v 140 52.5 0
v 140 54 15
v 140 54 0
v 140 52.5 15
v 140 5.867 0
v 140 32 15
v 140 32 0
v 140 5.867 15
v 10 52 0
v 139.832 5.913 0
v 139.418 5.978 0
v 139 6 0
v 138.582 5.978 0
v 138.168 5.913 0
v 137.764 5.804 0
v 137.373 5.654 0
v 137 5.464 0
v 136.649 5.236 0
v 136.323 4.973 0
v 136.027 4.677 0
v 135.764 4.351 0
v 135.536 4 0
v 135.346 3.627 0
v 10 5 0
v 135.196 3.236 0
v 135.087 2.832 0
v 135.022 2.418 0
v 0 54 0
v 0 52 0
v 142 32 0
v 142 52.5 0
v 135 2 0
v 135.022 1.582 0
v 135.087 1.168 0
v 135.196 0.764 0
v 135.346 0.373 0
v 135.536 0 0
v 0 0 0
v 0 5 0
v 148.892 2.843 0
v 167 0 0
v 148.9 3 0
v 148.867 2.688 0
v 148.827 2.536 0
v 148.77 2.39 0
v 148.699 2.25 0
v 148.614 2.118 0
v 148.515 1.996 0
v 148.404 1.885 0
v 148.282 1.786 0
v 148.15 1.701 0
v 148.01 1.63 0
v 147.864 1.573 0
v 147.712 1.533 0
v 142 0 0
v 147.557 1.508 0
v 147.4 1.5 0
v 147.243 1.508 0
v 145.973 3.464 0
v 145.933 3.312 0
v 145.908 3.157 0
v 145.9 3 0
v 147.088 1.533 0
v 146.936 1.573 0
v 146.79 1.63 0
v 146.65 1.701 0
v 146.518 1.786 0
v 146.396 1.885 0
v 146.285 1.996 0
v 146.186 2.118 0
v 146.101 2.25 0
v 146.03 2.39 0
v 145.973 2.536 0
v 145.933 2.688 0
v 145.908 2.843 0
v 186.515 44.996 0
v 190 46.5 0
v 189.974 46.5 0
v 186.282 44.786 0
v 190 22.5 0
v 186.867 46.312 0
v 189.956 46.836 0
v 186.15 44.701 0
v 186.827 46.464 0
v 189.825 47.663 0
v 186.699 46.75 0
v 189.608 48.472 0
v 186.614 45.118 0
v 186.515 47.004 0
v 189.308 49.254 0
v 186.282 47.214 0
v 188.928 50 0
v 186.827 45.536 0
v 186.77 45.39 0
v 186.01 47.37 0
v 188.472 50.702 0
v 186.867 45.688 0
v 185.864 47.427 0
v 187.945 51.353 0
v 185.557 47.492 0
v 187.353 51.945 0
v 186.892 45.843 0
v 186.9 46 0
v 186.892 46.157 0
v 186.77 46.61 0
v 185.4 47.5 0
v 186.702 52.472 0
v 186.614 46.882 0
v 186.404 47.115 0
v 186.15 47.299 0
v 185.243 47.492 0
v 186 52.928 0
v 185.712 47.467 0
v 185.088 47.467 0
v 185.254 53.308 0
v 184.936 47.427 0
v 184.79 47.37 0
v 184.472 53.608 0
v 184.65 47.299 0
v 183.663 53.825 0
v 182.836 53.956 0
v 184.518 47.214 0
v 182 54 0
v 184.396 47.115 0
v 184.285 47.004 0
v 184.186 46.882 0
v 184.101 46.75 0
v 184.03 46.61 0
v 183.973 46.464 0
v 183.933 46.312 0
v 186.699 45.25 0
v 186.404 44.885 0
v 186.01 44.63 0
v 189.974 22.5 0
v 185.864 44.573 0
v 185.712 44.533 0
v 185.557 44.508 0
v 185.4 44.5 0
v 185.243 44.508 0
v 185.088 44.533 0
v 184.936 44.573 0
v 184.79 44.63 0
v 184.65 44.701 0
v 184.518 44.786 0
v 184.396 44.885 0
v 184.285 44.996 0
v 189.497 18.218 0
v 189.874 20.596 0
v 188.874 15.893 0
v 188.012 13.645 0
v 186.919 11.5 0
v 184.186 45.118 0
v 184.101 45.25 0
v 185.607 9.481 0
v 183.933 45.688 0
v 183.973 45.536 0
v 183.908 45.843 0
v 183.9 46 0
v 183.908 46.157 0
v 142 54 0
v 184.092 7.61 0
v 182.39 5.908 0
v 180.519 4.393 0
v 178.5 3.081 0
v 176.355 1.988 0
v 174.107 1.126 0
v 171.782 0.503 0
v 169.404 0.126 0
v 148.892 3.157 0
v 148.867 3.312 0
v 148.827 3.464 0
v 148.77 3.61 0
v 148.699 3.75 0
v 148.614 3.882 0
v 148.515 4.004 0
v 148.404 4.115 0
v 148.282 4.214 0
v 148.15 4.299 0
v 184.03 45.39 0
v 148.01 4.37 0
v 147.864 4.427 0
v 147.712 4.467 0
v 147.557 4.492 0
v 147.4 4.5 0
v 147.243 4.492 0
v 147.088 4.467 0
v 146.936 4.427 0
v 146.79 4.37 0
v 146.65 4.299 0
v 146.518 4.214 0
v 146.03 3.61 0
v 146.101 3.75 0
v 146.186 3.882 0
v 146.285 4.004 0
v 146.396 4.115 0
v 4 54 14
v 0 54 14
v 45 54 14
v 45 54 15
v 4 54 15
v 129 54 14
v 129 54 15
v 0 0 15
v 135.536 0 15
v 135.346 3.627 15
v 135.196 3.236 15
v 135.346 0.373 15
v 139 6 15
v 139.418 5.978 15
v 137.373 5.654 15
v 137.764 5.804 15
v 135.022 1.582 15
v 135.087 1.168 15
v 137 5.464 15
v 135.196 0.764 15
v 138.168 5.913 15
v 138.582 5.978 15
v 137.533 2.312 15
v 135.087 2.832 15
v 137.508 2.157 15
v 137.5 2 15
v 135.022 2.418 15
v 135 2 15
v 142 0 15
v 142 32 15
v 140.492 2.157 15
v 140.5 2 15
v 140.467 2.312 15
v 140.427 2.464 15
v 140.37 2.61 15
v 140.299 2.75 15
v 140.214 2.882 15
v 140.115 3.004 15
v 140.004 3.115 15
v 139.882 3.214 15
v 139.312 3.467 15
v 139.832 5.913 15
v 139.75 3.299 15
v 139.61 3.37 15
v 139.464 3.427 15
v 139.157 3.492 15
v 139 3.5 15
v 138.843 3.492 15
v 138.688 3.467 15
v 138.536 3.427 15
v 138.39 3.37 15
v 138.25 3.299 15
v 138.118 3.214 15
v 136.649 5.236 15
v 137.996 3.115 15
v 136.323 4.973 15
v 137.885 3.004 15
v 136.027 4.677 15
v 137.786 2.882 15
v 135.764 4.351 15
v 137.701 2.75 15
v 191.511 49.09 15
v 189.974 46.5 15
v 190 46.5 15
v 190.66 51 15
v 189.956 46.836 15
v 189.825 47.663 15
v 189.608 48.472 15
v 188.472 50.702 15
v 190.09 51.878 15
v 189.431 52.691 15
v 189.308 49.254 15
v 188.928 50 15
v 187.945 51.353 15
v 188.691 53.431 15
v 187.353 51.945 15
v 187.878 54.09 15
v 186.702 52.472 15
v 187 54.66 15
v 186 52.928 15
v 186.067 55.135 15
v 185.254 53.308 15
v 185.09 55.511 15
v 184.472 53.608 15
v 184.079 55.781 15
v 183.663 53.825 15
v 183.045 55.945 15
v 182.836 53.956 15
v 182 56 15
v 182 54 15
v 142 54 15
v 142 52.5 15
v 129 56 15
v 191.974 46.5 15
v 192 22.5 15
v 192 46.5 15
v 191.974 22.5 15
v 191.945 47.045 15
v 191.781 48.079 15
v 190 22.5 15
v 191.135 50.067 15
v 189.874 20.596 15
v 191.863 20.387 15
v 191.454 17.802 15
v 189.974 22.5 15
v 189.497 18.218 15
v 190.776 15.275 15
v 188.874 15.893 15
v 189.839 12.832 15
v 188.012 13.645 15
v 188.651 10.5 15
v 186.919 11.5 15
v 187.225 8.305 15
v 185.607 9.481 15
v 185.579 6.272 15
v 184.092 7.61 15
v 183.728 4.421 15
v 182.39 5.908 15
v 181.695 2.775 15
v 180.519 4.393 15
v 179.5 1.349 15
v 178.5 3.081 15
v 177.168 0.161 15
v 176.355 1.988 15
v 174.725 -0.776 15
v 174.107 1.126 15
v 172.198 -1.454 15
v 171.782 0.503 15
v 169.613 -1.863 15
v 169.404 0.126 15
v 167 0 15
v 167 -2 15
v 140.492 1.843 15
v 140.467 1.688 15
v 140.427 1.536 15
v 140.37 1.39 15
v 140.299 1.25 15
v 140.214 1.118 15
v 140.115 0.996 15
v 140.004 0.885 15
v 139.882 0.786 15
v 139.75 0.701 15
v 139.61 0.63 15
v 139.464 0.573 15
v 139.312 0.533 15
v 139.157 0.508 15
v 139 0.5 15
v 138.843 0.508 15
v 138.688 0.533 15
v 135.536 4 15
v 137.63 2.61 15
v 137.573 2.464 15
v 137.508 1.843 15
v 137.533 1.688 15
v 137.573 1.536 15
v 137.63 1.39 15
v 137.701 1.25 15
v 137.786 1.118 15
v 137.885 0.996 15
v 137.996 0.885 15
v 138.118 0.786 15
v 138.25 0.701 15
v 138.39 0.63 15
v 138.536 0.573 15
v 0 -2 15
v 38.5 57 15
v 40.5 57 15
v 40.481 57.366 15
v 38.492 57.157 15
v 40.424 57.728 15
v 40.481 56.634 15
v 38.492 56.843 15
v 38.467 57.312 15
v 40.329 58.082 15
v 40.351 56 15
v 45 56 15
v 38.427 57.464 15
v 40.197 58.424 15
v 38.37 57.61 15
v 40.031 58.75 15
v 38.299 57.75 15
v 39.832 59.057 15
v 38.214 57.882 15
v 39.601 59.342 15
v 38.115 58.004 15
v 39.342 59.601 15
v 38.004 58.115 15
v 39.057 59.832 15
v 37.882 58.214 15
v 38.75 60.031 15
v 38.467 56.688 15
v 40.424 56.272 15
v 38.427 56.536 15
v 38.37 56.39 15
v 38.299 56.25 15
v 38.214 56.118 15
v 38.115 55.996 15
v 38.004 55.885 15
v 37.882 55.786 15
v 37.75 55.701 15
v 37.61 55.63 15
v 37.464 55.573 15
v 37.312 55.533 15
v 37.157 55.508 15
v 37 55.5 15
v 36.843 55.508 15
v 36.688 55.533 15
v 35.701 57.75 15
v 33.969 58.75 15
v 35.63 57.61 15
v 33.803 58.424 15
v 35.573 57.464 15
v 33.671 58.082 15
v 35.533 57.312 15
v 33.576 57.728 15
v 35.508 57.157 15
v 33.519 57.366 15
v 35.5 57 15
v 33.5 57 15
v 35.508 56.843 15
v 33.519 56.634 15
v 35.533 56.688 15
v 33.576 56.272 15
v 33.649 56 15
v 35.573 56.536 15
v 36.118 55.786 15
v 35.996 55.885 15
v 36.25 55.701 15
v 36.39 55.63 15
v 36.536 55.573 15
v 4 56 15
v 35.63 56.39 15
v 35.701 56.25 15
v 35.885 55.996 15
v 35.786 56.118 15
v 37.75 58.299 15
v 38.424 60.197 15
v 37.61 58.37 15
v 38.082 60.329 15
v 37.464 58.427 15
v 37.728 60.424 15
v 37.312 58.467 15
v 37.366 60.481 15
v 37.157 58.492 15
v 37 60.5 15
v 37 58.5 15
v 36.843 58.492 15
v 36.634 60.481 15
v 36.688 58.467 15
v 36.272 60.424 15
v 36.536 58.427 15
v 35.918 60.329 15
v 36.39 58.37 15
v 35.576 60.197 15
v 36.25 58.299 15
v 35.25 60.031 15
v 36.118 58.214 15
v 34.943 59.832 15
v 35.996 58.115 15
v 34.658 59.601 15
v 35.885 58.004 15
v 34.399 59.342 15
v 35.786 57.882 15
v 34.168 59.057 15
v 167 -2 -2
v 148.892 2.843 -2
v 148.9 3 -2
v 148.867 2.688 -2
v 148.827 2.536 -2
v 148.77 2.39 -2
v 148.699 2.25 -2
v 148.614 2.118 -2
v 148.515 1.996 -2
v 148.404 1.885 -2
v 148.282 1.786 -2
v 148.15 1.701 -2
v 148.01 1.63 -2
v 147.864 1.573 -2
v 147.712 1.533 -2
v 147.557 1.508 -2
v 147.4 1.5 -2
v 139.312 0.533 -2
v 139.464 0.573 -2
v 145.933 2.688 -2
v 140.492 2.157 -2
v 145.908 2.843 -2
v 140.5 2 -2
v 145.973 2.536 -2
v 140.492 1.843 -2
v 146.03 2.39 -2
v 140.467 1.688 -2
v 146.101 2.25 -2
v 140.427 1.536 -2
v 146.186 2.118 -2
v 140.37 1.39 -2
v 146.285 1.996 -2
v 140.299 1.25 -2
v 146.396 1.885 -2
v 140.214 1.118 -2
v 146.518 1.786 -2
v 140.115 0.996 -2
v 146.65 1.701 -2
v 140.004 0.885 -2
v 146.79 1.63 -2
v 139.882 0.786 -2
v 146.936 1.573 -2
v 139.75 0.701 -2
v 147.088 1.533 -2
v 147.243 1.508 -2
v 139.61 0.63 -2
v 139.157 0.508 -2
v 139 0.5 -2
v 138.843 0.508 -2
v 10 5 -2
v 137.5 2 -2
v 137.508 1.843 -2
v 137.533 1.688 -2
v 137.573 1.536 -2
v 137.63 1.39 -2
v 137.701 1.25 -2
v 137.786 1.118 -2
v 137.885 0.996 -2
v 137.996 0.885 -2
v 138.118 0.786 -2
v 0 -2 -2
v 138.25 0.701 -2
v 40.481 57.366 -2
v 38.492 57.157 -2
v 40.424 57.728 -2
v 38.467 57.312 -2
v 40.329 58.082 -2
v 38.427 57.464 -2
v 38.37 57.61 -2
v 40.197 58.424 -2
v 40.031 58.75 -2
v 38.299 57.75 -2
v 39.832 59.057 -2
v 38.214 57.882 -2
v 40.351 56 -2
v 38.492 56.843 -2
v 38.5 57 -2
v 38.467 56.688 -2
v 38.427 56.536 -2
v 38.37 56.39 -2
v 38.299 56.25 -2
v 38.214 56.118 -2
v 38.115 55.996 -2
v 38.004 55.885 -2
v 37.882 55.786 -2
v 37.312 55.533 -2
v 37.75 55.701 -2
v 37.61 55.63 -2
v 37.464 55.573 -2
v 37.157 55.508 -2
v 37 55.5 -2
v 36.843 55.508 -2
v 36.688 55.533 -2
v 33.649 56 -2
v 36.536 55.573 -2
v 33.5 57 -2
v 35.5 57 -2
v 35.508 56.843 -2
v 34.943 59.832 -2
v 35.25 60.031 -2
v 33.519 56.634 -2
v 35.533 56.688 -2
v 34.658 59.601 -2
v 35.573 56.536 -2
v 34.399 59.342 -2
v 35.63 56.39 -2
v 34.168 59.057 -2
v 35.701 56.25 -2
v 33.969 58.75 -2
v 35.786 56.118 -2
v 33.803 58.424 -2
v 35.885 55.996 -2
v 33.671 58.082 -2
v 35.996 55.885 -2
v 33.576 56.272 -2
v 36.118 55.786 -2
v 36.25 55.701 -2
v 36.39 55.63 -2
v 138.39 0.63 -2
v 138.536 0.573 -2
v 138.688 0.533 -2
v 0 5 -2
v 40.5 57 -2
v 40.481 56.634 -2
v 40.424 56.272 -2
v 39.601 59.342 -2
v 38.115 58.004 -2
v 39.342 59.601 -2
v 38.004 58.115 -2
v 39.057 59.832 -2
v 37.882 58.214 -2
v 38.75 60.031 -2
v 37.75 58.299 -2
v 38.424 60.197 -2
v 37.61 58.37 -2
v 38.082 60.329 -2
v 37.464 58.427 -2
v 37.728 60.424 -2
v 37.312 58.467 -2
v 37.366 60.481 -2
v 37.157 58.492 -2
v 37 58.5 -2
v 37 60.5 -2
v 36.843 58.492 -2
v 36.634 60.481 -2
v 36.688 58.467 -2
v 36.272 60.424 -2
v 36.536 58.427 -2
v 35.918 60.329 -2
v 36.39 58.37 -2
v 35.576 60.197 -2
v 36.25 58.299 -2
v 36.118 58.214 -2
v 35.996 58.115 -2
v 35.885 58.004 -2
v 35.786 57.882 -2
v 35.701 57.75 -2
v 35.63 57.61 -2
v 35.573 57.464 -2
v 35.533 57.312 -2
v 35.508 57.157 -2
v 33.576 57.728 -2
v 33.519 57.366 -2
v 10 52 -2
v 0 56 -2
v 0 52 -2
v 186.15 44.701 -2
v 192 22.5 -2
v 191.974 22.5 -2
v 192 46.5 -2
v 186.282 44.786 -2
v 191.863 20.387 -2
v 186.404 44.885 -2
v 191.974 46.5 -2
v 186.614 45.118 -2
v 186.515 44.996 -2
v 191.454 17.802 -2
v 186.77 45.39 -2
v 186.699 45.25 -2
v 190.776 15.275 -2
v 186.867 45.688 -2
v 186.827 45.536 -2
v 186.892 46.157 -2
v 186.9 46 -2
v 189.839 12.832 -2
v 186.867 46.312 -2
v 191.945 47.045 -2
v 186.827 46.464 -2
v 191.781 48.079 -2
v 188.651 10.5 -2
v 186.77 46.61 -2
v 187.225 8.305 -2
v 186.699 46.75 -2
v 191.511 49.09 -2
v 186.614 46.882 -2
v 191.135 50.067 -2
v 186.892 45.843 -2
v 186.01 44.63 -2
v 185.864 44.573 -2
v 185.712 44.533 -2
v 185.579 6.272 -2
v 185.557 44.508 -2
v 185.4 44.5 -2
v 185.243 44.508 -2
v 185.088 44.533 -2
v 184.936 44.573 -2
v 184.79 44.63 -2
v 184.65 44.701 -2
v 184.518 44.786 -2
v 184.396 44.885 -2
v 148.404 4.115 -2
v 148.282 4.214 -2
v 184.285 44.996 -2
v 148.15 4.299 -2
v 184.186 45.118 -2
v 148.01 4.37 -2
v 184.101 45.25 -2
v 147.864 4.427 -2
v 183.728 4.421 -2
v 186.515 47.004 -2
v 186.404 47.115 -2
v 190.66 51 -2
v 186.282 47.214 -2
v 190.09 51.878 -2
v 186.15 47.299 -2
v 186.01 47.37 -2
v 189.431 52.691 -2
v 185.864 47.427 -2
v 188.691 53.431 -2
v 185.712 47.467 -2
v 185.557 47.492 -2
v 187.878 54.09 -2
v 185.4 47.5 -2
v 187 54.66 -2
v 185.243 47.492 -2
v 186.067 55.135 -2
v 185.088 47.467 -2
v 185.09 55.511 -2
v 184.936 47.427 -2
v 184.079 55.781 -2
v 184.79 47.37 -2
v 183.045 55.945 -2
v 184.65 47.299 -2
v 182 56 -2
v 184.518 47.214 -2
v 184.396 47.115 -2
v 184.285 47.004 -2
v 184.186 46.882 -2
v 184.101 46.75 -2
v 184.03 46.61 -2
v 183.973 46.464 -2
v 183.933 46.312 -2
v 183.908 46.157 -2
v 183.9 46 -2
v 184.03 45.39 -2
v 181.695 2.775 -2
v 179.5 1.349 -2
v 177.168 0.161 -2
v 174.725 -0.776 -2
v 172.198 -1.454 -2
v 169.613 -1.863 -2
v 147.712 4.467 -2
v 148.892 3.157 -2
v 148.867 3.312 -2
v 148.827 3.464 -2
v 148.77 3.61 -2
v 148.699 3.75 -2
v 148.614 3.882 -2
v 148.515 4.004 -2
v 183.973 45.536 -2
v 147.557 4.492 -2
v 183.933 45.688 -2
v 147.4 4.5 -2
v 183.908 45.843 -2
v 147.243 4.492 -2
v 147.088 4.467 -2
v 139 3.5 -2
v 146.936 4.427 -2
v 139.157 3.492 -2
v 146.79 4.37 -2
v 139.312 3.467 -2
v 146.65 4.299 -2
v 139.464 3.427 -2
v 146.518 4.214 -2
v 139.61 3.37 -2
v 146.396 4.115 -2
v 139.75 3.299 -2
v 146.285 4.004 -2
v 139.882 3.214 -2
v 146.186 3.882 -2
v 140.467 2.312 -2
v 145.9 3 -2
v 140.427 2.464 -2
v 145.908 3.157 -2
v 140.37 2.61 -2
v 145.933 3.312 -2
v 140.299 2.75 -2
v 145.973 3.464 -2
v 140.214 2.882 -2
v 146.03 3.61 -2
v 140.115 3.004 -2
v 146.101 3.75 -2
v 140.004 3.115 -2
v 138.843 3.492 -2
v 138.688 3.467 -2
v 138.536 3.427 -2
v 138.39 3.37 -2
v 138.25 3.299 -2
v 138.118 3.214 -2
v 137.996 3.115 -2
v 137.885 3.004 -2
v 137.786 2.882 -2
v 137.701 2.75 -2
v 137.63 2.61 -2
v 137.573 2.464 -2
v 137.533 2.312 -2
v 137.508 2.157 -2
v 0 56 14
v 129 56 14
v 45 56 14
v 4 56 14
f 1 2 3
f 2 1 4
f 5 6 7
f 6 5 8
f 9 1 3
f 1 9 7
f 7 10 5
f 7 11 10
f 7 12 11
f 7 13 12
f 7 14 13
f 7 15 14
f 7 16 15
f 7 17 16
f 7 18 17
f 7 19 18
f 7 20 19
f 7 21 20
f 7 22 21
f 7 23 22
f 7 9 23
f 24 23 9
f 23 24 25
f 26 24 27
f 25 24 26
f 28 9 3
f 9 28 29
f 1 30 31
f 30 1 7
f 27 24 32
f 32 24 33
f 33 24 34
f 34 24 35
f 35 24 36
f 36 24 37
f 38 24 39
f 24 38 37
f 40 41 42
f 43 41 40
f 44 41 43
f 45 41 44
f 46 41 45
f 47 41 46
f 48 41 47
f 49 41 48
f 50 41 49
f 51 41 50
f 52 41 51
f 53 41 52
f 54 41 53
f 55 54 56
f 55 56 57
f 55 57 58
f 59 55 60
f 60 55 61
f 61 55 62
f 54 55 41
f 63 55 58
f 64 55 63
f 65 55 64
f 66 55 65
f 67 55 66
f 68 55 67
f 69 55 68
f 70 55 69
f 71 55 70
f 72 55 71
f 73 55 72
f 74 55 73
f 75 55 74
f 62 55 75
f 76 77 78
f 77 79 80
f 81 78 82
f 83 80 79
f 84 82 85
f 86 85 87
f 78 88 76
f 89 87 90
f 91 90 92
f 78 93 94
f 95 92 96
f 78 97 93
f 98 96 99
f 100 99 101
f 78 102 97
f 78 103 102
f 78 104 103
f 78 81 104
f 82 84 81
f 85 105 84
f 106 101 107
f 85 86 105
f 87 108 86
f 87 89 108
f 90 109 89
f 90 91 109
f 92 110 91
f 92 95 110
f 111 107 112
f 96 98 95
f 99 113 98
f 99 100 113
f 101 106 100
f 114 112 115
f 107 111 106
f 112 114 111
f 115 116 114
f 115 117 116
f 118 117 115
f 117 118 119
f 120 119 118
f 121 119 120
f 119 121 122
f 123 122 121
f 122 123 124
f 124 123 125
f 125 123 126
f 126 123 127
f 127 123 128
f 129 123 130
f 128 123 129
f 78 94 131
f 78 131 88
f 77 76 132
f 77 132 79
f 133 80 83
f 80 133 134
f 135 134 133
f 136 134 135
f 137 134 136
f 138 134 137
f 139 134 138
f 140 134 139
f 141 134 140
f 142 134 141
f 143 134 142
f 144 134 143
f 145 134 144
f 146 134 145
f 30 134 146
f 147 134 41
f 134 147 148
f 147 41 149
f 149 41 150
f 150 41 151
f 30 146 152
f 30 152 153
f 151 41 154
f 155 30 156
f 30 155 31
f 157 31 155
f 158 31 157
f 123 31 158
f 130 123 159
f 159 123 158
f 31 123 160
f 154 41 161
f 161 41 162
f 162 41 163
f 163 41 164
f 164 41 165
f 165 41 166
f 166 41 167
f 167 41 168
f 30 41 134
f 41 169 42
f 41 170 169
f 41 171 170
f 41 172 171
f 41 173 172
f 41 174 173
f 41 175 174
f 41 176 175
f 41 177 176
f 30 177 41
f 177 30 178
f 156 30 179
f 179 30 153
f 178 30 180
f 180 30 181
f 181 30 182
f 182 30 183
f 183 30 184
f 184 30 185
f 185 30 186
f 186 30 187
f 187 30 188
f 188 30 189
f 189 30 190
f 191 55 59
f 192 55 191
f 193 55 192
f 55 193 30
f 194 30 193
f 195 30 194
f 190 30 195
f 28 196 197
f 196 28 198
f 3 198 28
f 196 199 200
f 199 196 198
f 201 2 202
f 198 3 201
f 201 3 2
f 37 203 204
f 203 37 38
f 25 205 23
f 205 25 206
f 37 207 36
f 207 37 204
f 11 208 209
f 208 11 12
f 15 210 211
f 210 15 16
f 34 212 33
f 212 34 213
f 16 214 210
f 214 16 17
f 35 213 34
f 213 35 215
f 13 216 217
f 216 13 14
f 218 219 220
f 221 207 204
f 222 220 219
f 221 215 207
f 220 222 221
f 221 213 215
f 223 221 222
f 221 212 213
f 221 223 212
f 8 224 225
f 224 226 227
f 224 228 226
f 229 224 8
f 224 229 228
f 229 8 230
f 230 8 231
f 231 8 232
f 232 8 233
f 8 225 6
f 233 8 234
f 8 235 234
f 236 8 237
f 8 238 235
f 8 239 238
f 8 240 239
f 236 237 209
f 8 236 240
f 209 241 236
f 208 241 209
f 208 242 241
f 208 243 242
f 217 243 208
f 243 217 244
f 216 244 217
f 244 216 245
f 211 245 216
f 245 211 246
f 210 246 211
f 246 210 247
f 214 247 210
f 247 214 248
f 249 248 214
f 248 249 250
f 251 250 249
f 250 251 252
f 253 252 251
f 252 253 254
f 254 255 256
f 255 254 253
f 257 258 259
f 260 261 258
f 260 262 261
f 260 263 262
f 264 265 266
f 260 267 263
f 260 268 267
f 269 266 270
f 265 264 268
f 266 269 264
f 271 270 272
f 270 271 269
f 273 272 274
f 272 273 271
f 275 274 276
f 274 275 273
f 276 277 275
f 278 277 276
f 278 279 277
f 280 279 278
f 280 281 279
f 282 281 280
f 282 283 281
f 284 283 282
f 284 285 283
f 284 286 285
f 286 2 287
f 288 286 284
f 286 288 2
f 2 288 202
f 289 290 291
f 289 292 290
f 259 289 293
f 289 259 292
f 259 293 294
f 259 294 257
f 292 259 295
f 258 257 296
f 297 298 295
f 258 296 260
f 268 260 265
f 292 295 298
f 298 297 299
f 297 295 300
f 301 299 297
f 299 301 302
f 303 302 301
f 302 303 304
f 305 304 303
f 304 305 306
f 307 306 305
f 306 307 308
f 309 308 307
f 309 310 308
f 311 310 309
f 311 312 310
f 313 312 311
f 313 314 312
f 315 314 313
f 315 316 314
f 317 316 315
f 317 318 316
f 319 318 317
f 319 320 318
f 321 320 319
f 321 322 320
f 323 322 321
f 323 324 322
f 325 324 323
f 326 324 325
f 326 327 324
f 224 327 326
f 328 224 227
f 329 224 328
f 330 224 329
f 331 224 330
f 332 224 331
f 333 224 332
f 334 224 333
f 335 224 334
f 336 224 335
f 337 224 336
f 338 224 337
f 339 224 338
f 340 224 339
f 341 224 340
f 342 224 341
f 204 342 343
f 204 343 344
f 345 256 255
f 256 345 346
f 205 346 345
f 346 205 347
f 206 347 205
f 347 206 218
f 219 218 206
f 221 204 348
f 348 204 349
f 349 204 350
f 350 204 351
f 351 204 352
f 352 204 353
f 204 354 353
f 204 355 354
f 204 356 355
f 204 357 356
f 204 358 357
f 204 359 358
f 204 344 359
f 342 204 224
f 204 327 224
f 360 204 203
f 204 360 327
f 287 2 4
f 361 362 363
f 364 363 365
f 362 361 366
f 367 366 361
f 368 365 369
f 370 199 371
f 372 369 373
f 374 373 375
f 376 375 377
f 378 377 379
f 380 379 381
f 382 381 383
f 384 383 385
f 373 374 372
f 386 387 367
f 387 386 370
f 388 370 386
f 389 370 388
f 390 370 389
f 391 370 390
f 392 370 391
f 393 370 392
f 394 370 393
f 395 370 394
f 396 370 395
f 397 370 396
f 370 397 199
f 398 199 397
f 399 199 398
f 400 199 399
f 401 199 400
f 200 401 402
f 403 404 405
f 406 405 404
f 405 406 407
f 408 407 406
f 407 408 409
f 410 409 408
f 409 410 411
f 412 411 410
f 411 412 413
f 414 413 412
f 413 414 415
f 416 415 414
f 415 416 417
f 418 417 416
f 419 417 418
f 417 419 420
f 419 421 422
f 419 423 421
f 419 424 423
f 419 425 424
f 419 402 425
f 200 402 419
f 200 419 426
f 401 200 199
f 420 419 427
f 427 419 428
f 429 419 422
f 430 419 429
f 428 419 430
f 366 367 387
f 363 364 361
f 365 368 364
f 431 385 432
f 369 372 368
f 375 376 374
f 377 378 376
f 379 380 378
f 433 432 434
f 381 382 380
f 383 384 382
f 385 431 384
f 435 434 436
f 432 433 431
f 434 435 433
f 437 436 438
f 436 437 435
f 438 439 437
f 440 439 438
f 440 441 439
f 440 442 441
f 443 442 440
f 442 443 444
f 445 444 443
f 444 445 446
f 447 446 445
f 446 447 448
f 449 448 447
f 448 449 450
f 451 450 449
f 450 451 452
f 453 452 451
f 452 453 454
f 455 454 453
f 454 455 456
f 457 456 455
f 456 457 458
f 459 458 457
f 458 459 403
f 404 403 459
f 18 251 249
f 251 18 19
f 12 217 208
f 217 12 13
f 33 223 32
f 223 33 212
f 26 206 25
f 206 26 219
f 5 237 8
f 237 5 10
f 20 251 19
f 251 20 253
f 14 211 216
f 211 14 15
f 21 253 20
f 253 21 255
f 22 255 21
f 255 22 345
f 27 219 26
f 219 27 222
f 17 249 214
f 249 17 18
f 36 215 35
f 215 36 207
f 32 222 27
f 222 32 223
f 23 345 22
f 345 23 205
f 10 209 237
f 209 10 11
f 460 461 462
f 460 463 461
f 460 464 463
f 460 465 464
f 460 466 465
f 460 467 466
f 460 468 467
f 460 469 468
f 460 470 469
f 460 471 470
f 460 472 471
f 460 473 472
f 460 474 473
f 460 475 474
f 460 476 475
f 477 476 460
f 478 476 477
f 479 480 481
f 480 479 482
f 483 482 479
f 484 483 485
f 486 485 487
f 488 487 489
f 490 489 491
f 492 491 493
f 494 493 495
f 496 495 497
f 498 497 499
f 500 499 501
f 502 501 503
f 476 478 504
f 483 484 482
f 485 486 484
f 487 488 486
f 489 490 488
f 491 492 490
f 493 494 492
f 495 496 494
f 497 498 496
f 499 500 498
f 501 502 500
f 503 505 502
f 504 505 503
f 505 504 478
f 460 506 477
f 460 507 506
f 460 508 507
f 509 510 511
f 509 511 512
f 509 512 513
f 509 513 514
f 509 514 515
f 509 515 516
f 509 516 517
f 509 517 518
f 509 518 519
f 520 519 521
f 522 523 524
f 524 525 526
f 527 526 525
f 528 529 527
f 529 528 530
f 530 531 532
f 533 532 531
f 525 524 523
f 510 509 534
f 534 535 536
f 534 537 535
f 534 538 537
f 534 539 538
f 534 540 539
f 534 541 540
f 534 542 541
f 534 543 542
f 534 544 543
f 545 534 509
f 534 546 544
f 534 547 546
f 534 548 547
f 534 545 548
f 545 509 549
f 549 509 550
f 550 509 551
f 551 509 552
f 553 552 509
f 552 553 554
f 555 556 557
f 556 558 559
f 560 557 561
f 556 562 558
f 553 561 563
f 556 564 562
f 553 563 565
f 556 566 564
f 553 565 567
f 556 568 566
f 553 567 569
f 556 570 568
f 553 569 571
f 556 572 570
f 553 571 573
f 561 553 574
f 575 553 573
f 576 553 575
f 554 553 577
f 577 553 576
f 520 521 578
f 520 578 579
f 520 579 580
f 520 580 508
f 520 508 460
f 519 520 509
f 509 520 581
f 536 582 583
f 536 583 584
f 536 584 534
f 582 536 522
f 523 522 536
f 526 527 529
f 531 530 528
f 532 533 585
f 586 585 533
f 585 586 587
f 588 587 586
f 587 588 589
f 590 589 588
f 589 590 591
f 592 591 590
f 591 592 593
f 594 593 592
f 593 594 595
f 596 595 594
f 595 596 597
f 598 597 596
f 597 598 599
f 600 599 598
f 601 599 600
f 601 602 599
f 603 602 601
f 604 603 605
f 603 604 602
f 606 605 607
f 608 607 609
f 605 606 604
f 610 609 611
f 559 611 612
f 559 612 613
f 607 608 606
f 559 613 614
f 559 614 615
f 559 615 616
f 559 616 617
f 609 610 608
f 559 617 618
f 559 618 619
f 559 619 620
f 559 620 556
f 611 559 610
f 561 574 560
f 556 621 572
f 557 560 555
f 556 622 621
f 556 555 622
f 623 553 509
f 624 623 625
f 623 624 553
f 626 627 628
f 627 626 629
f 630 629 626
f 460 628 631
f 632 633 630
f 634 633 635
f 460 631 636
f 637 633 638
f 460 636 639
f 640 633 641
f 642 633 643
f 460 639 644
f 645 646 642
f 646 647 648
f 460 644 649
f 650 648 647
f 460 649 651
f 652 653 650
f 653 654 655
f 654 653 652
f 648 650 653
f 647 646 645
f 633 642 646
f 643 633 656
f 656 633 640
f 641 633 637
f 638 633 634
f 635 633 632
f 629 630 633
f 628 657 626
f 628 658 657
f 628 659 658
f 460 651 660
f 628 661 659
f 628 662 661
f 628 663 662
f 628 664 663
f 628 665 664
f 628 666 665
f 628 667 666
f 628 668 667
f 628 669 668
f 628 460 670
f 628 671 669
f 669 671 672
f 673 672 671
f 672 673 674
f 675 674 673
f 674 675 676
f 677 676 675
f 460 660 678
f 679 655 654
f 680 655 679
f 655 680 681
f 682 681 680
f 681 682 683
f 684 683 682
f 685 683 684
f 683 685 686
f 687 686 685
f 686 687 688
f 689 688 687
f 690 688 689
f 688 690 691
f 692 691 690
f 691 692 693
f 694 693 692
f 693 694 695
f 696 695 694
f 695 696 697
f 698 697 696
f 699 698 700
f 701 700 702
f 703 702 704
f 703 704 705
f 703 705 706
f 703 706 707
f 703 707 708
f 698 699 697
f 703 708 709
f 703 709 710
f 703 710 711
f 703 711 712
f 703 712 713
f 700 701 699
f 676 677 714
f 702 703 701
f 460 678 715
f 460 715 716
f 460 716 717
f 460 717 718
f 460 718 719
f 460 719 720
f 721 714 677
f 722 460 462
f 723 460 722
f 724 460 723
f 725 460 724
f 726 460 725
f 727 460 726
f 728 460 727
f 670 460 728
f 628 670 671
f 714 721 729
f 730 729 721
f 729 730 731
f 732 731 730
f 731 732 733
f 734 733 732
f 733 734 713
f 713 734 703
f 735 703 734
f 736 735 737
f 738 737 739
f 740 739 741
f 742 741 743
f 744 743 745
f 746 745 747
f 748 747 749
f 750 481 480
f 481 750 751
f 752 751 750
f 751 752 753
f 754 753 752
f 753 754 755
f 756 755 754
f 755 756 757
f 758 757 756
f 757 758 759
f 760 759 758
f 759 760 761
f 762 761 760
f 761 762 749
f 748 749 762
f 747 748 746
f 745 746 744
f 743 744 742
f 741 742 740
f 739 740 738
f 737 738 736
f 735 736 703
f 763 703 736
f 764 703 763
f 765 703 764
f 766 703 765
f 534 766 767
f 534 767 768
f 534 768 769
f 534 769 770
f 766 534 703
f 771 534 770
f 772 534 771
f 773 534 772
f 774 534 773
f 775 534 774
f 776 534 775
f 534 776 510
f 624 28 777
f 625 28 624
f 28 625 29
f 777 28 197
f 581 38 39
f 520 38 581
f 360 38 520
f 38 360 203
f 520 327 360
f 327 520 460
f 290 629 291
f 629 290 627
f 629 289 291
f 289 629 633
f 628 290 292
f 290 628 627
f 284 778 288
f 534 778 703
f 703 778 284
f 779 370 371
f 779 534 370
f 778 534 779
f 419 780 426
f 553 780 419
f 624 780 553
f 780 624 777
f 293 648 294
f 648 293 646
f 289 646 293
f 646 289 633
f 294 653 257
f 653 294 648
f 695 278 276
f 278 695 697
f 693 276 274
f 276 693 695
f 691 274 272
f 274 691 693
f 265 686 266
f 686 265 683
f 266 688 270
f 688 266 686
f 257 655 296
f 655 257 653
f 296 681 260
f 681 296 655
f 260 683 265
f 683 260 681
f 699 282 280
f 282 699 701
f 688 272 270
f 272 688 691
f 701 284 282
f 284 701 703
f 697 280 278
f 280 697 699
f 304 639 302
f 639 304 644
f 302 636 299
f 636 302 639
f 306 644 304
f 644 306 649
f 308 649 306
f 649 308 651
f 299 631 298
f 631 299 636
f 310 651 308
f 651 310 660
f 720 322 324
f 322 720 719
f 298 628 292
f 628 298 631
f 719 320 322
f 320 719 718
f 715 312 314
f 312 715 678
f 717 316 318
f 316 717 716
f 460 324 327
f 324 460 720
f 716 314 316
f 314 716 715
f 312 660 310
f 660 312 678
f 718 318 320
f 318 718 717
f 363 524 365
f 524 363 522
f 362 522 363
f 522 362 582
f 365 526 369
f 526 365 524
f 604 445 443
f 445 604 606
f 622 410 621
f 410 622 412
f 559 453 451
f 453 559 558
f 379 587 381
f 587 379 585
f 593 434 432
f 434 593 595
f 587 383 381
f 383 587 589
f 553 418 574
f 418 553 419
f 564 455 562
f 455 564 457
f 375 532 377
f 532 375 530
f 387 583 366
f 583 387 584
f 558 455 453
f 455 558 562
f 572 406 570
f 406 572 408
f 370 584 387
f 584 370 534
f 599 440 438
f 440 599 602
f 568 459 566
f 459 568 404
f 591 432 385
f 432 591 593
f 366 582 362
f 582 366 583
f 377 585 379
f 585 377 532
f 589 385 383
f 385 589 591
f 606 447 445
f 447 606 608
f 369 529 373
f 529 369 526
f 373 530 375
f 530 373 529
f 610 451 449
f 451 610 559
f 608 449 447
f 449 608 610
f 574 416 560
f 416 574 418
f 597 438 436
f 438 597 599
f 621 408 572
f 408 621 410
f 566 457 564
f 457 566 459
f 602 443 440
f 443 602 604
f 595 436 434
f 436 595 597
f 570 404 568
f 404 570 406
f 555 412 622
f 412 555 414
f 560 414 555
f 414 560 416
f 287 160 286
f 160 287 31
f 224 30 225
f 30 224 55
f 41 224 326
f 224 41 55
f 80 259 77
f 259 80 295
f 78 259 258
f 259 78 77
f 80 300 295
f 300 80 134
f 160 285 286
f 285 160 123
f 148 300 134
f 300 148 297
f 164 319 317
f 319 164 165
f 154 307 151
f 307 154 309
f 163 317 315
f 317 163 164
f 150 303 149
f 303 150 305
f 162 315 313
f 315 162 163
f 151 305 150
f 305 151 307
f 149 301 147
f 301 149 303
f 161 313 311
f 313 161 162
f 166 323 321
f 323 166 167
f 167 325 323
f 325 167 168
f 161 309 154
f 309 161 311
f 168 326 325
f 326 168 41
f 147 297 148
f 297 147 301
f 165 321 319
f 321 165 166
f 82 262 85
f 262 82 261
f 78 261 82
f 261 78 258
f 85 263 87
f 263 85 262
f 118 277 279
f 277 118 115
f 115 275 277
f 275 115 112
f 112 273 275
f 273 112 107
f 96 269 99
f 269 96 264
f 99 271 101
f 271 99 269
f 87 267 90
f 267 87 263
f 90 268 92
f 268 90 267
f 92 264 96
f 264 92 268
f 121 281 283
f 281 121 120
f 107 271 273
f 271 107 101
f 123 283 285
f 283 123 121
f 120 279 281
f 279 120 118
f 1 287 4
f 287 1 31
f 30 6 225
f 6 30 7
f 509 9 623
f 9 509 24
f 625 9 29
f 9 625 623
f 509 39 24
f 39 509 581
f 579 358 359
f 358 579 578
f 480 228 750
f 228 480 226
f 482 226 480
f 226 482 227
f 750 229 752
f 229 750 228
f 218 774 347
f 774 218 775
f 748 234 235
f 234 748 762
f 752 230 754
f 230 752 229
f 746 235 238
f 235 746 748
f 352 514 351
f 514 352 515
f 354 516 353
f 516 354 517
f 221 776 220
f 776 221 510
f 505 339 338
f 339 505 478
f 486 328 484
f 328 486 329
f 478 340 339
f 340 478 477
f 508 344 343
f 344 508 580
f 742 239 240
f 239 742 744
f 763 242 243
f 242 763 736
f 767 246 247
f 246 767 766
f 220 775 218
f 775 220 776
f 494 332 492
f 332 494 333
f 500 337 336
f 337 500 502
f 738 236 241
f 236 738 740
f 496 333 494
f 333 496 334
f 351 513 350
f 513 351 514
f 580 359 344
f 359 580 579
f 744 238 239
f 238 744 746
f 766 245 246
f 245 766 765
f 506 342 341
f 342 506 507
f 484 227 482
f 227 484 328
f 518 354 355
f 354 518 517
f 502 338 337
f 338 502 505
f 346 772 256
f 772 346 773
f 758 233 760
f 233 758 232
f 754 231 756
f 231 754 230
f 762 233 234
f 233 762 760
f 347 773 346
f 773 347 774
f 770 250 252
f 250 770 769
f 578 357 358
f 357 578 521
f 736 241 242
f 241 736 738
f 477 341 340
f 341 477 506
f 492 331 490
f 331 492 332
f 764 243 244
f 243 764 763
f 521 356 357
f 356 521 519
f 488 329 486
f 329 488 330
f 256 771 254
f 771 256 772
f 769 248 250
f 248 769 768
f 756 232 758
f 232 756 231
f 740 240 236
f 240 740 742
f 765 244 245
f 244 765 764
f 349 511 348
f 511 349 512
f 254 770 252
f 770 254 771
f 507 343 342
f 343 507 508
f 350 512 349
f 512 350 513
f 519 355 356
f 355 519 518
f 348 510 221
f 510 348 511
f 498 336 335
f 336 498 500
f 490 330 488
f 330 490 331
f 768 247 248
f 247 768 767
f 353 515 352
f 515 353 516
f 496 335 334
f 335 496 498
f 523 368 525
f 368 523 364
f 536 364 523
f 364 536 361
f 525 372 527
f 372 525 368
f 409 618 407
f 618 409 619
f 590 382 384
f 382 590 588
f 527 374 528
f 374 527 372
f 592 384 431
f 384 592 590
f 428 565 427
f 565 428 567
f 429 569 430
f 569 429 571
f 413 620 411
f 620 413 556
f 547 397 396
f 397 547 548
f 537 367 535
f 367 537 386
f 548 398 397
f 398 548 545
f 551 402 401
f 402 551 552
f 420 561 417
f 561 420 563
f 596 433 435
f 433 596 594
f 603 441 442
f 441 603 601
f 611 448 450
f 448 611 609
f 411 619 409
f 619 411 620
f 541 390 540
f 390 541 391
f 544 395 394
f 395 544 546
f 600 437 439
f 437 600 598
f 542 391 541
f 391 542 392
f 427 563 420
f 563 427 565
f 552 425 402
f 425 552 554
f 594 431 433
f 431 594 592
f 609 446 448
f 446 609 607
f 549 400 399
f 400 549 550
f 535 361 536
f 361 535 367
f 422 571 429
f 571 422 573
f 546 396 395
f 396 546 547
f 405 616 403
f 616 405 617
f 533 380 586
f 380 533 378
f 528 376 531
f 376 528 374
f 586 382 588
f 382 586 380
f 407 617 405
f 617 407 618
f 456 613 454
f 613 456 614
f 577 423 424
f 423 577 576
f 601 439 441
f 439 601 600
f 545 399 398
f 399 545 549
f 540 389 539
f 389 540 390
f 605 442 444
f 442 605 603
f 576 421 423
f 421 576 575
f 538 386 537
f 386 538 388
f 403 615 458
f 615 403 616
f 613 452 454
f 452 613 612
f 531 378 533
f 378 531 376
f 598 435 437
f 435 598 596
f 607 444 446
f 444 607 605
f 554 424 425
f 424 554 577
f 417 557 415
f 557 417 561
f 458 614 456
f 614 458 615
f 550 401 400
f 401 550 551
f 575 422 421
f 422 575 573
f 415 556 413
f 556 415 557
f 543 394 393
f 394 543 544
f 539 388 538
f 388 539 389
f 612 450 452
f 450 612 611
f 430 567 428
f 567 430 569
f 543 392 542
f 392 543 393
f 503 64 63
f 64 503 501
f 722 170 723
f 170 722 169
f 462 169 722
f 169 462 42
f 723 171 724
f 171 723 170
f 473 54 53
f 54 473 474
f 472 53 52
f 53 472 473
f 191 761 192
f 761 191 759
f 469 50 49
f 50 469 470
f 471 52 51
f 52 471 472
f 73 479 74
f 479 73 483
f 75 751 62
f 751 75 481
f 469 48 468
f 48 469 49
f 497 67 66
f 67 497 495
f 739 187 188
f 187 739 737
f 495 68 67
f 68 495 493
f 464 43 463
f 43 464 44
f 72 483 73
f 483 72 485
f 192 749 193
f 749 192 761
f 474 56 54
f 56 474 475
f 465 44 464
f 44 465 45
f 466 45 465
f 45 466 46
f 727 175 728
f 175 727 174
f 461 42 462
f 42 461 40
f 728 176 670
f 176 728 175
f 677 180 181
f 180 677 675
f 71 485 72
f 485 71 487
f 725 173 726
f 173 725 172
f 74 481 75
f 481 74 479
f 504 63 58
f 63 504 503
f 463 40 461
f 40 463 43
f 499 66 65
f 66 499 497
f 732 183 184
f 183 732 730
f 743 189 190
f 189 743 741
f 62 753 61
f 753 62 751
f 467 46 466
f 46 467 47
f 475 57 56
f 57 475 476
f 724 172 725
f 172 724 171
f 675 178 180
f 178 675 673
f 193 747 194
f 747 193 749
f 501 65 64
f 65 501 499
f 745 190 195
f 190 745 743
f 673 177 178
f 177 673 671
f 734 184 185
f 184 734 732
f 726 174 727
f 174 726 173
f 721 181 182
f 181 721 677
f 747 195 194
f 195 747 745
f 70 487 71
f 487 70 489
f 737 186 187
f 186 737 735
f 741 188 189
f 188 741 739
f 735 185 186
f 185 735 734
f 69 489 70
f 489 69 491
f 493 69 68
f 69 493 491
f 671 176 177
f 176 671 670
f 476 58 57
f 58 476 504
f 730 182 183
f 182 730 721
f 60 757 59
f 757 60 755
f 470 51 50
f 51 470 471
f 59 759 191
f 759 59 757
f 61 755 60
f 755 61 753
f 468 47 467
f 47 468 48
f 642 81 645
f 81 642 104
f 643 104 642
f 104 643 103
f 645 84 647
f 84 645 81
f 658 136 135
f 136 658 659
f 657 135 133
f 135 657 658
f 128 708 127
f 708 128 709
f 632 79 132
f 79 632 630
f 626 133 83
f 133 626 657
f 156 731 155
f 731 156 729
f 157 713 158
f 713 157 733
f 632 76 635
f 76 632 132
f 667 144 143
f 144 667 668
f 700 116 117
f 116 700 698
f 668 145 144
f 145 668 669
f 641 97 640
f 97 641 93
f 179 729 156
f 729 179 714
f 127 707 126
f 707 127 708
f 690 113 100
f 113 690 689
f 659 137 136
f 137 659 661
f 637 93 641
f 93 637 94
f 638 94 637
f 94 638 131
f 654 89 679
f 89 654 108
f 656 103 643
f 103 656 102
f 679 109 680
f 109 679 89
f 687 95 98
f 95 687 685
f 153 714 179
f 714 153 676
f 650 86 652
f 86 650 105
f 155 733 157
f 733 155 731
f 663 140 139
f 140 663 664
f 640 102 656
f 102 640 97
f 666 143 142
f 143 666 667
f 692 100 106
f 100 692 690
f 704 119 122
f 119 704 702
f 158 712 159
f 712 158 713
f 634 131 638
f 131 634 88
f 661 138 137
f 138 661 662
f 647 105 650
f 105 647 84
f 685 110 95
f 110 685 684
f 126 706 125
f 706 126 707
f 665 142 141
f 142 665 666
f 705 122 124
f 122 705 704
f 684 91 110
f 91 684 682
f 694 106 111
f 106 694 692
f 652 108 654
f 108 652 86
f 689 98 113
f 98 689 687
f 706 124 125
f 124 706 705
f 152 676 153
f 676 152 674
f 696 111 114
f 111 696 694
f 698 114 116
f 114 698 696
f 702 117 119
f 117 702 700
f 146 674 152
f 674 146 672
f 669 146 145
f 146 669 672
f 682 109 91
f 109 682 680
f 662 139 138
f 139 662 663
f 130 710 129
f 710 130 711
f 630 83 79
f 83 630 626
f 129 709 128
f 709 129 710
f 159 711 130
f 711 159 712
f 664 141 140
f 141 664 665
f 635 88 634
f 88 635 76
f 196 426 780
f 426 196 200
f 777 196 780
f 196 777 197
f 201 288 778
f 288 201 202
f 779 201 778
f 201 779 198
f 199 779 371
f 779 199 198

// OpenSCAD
$fn = 60;
overcut = 0.5;

wall_thickness_x = 2;
wall_thickness_y = 2;
wall_thickness_z = 2;

box_inside_x = 140;
box_inside_y = 56-2;
box_inside_z = 15;

top_vent_x_length = 10;
top_vent_y_length = 47;
top_vent_offset_y = 5;

hole_support_diameter = 7;

card_hole1_x = 139;
card_hole1_y = 3 - 1;
card_hole1_d = 3;

card_hole2_x = 37;
card_hole2_y = 58 - 1;
card_hole2_d = 3;

led_notch_z = 1;
led_notch_length = 4;

card_edge_notch_z = 1;
card_edge_notch_length = 84;
card_edge_notch_offset = 45;

fan_box_overlap_x = 2;
fan_box_inside_x = 51 - fan_box_overlap_x + 1;

duct_notch_offset_y = 32;
duct_notch_length_y = 20.5;

fan_hole1_x = box_inside_x + 7.4;
fan_hole1_y = 3;
fan_hole1_d = 3;

fan_hole2_x = box_inside_x + 45.4;
fan_hole2_y = 46;
fan_hole2_d = 3;

corner_radius_bottom = 10;
corner_radius_top = 25;

module cx6dx_airflow_guide() {
    difference() {
        union() {
            // main body top
            translate([0, -wall_thickness_y, -wall_thickness_z])
                cube([
                    box_inside_x + wall_thickness_x  + fan_box_inside_x - corner_radius_top,
                    wall_thickness_y + corner_radius_top + overcut,
                    box_inside_z + wall_thickness_z
                ]);
            // main body mid
            translate([0, -wall_thickness_y + corner_radius_top - overcut, -wall_thickness_z])
                cube([
                    box_inside_x + wall_thickness_x + fan_box_inside_x,
                    box_inside_y + 2 * wall_thickness_y + 2 * overcut
                        - corner_radius_top - corner_radius_bottom,
                    box_inside_z + wall_thickness_z
                ]);
            // main body bottom
            translate([
                    0,
                    box_inside_y + wall_thickness_y - overcut - corner_radius_bottom,
                    -wall_thickness_z
                ])
                cube([
                    box_inside_x + wall_thickness_x + fan_box_inside_x - corner_radius_bottom,
                    corner_radius_bottom + overcut,
                    box_inside_z + wall_thickness_z
                ]);
            translate([
                    box_inside_x + wall_thickness_x + fan_box_inside_x - corner_radius_bottom,
                    box_inside_y + wall_thickness_y - corner_radius_bottom,
                    -wall_thickness_z
                ])
                cylinder(h = box_inside_z + wall_thickness_z, r = corner_radius_bottom);
            // main body lower corner radius
            translate([
                    box_inside_x + wall_thickness_x + fan_box_inside_x - corner_radius_top,
                    -wall_thickness_y + corner_radius_top,
                    -wall_thickness_z
                ])
                cylinder(h = box_inside_z + wall_thickness_z, r = corner_radius_top);
            
            // card hole1 support
            translate([card_hole1_x, card_hole1_y, - wall_thickness_z])
            cylinder(h = box_inside_z + wall_thickness_z, d = hole_support_diameter + 1);
            // card hole2 support
            translate([card_hole2_x, card_hole2_y, - wall_thickness_z])
            cylinder(h = box_inside_z + wall_thickness_z, d = hole_support_diameter);
        }
        // circuit box cutout
        difference() {
            translate([-overcut, 0, 0])
                cube([
                    box_inside_x + overcut,
                    box_inside_y,
                    box_inside_z + overcut
                ]);
            // card hole2 support cutout
            translate([card_hole1_x, card_hole1_y, - wall_thickness_z])
            cylinder(h = box_inside_z + wall_thickness_z, d = hole_support_diameter + 1);            
        }
        // fan box cutout
        union() {
            translate([box_inside_x + fan_box_overlap_x, 0, 0])
                cube([
                    fan_box_inside_x - fan_box_overlap_x - corner_radius_top + wall_thickness_x,
                    corner_radius_top + overcut,
                    box_inside_z + overcut
                ]);
            translate([
                    box_inside_x + fan_box_overlap_x, corner_radius_top - wall_thickness_x - overcut, 0])
                cube([
                    fan_box_inside_x - fan_box_overlap_x,
                    box_inside_y - corner_radius_top - corner_radius_bottom
                        + 2*wall_thickness_x + 2*overcut,
                    box_inside_z + overcut
                ]);
            translate([
                    box_inside_x + fan_box_overlap_x,
                    box_inside_y - (corner_radius_bottom - wall_thickness_y) - overcut,
                    0
                ])
                cube([
                    fan_box_inside_x - fan_box_overlap_x - corner_radius_bottom + wall_thickness_x,
                    corner_radius_bottom - wall_thickness_y + overcut,
                    box_inside_z + overcut
                ]);
            translate([
                    box_inside_x + fan_box_inside_x + wall_thickness_x - corner_radius_top,
                    corner_radius_top - wall_thickness_x,
                    0
                ])
                cylinder(h = box_inside_z + overcut, r = corner_radius_top - wall_thickness_x);
            translate([
                    box_inside_x + fan_box_inside_x + wall_thickness_x - corner_radius_bottom,
                    box_inside_y - corner_radius_bottom + wall_thickness_x,
                    0
                ])
                cylinder(h = box_inside_z + overcut, r = corner_radius_bottom - wall_thickness_x);
        }
        // duct notch cutout
        translate([box_inside_x - overcut, duct_notch_offset_y, 0])
            cube([
                fan_box_overlap_x + 2*overcut,
                duct_notch_length_y,
                box_inside_z + overcut
            ]);        
        // top vent cutout
        translate([-overcut, top_vent_offset_y, - (wall_thickness_z + overcut)])
            cube([
                top_vent_x_length + overcut,
                top_vent_y_length,
                wall_thickness_z + 2*overcut
            ]);
        // card hole1
        translate([card_hole1_x, card_hole1_y, - wall_thickness_z - overcut])
        cylinder(h = box_inside_z + wall_thickness_z + 2*overcut, d = card_hole1_d);
        // card hole2
        translate([card_hole2_x, card_hole2_y, - wall_thickness_z - overcut])
        cylinder(h = box_inside_z + wall_thickness_z + 2*overcut, d = card_hole2_d);
        // fan hole1
        translate([fan_hole1_x, fan_hole1_y, - wall_thickness_z - overcut])
        cylinder(h = box_inside_z + wall_thickness_z + 2*overcut, d = fan_hole1_d);
        // fan hole2
        translate([fan_hole2_x, fan_hole2_y, - wall_thickness_z - overcut])
        cylinder(h = box_inside_z + wall_thickness_z + 2*overcut, d = fan_hole2_d);
        // led notch
        translate([-overcut, box_inside_y - overcut, box_inside_z - led_notch_z])
            cube([
                led_notch_length + overcut,
                wall_thickness_y + 2*overcut,
                led_notch_z + overcut
            ]);
        // card edge notch
        translate([card_edge_notch_offset, box_inside_y - overcut, box_inside_z - card_edge_notch_z])
            cube([
                card_edge_notch_length,
                wall_thickness_y + 2*overcut,
                card_edge_notch_z + overcut
            ]);
    }
}

cx6dx_airflow_guide();
